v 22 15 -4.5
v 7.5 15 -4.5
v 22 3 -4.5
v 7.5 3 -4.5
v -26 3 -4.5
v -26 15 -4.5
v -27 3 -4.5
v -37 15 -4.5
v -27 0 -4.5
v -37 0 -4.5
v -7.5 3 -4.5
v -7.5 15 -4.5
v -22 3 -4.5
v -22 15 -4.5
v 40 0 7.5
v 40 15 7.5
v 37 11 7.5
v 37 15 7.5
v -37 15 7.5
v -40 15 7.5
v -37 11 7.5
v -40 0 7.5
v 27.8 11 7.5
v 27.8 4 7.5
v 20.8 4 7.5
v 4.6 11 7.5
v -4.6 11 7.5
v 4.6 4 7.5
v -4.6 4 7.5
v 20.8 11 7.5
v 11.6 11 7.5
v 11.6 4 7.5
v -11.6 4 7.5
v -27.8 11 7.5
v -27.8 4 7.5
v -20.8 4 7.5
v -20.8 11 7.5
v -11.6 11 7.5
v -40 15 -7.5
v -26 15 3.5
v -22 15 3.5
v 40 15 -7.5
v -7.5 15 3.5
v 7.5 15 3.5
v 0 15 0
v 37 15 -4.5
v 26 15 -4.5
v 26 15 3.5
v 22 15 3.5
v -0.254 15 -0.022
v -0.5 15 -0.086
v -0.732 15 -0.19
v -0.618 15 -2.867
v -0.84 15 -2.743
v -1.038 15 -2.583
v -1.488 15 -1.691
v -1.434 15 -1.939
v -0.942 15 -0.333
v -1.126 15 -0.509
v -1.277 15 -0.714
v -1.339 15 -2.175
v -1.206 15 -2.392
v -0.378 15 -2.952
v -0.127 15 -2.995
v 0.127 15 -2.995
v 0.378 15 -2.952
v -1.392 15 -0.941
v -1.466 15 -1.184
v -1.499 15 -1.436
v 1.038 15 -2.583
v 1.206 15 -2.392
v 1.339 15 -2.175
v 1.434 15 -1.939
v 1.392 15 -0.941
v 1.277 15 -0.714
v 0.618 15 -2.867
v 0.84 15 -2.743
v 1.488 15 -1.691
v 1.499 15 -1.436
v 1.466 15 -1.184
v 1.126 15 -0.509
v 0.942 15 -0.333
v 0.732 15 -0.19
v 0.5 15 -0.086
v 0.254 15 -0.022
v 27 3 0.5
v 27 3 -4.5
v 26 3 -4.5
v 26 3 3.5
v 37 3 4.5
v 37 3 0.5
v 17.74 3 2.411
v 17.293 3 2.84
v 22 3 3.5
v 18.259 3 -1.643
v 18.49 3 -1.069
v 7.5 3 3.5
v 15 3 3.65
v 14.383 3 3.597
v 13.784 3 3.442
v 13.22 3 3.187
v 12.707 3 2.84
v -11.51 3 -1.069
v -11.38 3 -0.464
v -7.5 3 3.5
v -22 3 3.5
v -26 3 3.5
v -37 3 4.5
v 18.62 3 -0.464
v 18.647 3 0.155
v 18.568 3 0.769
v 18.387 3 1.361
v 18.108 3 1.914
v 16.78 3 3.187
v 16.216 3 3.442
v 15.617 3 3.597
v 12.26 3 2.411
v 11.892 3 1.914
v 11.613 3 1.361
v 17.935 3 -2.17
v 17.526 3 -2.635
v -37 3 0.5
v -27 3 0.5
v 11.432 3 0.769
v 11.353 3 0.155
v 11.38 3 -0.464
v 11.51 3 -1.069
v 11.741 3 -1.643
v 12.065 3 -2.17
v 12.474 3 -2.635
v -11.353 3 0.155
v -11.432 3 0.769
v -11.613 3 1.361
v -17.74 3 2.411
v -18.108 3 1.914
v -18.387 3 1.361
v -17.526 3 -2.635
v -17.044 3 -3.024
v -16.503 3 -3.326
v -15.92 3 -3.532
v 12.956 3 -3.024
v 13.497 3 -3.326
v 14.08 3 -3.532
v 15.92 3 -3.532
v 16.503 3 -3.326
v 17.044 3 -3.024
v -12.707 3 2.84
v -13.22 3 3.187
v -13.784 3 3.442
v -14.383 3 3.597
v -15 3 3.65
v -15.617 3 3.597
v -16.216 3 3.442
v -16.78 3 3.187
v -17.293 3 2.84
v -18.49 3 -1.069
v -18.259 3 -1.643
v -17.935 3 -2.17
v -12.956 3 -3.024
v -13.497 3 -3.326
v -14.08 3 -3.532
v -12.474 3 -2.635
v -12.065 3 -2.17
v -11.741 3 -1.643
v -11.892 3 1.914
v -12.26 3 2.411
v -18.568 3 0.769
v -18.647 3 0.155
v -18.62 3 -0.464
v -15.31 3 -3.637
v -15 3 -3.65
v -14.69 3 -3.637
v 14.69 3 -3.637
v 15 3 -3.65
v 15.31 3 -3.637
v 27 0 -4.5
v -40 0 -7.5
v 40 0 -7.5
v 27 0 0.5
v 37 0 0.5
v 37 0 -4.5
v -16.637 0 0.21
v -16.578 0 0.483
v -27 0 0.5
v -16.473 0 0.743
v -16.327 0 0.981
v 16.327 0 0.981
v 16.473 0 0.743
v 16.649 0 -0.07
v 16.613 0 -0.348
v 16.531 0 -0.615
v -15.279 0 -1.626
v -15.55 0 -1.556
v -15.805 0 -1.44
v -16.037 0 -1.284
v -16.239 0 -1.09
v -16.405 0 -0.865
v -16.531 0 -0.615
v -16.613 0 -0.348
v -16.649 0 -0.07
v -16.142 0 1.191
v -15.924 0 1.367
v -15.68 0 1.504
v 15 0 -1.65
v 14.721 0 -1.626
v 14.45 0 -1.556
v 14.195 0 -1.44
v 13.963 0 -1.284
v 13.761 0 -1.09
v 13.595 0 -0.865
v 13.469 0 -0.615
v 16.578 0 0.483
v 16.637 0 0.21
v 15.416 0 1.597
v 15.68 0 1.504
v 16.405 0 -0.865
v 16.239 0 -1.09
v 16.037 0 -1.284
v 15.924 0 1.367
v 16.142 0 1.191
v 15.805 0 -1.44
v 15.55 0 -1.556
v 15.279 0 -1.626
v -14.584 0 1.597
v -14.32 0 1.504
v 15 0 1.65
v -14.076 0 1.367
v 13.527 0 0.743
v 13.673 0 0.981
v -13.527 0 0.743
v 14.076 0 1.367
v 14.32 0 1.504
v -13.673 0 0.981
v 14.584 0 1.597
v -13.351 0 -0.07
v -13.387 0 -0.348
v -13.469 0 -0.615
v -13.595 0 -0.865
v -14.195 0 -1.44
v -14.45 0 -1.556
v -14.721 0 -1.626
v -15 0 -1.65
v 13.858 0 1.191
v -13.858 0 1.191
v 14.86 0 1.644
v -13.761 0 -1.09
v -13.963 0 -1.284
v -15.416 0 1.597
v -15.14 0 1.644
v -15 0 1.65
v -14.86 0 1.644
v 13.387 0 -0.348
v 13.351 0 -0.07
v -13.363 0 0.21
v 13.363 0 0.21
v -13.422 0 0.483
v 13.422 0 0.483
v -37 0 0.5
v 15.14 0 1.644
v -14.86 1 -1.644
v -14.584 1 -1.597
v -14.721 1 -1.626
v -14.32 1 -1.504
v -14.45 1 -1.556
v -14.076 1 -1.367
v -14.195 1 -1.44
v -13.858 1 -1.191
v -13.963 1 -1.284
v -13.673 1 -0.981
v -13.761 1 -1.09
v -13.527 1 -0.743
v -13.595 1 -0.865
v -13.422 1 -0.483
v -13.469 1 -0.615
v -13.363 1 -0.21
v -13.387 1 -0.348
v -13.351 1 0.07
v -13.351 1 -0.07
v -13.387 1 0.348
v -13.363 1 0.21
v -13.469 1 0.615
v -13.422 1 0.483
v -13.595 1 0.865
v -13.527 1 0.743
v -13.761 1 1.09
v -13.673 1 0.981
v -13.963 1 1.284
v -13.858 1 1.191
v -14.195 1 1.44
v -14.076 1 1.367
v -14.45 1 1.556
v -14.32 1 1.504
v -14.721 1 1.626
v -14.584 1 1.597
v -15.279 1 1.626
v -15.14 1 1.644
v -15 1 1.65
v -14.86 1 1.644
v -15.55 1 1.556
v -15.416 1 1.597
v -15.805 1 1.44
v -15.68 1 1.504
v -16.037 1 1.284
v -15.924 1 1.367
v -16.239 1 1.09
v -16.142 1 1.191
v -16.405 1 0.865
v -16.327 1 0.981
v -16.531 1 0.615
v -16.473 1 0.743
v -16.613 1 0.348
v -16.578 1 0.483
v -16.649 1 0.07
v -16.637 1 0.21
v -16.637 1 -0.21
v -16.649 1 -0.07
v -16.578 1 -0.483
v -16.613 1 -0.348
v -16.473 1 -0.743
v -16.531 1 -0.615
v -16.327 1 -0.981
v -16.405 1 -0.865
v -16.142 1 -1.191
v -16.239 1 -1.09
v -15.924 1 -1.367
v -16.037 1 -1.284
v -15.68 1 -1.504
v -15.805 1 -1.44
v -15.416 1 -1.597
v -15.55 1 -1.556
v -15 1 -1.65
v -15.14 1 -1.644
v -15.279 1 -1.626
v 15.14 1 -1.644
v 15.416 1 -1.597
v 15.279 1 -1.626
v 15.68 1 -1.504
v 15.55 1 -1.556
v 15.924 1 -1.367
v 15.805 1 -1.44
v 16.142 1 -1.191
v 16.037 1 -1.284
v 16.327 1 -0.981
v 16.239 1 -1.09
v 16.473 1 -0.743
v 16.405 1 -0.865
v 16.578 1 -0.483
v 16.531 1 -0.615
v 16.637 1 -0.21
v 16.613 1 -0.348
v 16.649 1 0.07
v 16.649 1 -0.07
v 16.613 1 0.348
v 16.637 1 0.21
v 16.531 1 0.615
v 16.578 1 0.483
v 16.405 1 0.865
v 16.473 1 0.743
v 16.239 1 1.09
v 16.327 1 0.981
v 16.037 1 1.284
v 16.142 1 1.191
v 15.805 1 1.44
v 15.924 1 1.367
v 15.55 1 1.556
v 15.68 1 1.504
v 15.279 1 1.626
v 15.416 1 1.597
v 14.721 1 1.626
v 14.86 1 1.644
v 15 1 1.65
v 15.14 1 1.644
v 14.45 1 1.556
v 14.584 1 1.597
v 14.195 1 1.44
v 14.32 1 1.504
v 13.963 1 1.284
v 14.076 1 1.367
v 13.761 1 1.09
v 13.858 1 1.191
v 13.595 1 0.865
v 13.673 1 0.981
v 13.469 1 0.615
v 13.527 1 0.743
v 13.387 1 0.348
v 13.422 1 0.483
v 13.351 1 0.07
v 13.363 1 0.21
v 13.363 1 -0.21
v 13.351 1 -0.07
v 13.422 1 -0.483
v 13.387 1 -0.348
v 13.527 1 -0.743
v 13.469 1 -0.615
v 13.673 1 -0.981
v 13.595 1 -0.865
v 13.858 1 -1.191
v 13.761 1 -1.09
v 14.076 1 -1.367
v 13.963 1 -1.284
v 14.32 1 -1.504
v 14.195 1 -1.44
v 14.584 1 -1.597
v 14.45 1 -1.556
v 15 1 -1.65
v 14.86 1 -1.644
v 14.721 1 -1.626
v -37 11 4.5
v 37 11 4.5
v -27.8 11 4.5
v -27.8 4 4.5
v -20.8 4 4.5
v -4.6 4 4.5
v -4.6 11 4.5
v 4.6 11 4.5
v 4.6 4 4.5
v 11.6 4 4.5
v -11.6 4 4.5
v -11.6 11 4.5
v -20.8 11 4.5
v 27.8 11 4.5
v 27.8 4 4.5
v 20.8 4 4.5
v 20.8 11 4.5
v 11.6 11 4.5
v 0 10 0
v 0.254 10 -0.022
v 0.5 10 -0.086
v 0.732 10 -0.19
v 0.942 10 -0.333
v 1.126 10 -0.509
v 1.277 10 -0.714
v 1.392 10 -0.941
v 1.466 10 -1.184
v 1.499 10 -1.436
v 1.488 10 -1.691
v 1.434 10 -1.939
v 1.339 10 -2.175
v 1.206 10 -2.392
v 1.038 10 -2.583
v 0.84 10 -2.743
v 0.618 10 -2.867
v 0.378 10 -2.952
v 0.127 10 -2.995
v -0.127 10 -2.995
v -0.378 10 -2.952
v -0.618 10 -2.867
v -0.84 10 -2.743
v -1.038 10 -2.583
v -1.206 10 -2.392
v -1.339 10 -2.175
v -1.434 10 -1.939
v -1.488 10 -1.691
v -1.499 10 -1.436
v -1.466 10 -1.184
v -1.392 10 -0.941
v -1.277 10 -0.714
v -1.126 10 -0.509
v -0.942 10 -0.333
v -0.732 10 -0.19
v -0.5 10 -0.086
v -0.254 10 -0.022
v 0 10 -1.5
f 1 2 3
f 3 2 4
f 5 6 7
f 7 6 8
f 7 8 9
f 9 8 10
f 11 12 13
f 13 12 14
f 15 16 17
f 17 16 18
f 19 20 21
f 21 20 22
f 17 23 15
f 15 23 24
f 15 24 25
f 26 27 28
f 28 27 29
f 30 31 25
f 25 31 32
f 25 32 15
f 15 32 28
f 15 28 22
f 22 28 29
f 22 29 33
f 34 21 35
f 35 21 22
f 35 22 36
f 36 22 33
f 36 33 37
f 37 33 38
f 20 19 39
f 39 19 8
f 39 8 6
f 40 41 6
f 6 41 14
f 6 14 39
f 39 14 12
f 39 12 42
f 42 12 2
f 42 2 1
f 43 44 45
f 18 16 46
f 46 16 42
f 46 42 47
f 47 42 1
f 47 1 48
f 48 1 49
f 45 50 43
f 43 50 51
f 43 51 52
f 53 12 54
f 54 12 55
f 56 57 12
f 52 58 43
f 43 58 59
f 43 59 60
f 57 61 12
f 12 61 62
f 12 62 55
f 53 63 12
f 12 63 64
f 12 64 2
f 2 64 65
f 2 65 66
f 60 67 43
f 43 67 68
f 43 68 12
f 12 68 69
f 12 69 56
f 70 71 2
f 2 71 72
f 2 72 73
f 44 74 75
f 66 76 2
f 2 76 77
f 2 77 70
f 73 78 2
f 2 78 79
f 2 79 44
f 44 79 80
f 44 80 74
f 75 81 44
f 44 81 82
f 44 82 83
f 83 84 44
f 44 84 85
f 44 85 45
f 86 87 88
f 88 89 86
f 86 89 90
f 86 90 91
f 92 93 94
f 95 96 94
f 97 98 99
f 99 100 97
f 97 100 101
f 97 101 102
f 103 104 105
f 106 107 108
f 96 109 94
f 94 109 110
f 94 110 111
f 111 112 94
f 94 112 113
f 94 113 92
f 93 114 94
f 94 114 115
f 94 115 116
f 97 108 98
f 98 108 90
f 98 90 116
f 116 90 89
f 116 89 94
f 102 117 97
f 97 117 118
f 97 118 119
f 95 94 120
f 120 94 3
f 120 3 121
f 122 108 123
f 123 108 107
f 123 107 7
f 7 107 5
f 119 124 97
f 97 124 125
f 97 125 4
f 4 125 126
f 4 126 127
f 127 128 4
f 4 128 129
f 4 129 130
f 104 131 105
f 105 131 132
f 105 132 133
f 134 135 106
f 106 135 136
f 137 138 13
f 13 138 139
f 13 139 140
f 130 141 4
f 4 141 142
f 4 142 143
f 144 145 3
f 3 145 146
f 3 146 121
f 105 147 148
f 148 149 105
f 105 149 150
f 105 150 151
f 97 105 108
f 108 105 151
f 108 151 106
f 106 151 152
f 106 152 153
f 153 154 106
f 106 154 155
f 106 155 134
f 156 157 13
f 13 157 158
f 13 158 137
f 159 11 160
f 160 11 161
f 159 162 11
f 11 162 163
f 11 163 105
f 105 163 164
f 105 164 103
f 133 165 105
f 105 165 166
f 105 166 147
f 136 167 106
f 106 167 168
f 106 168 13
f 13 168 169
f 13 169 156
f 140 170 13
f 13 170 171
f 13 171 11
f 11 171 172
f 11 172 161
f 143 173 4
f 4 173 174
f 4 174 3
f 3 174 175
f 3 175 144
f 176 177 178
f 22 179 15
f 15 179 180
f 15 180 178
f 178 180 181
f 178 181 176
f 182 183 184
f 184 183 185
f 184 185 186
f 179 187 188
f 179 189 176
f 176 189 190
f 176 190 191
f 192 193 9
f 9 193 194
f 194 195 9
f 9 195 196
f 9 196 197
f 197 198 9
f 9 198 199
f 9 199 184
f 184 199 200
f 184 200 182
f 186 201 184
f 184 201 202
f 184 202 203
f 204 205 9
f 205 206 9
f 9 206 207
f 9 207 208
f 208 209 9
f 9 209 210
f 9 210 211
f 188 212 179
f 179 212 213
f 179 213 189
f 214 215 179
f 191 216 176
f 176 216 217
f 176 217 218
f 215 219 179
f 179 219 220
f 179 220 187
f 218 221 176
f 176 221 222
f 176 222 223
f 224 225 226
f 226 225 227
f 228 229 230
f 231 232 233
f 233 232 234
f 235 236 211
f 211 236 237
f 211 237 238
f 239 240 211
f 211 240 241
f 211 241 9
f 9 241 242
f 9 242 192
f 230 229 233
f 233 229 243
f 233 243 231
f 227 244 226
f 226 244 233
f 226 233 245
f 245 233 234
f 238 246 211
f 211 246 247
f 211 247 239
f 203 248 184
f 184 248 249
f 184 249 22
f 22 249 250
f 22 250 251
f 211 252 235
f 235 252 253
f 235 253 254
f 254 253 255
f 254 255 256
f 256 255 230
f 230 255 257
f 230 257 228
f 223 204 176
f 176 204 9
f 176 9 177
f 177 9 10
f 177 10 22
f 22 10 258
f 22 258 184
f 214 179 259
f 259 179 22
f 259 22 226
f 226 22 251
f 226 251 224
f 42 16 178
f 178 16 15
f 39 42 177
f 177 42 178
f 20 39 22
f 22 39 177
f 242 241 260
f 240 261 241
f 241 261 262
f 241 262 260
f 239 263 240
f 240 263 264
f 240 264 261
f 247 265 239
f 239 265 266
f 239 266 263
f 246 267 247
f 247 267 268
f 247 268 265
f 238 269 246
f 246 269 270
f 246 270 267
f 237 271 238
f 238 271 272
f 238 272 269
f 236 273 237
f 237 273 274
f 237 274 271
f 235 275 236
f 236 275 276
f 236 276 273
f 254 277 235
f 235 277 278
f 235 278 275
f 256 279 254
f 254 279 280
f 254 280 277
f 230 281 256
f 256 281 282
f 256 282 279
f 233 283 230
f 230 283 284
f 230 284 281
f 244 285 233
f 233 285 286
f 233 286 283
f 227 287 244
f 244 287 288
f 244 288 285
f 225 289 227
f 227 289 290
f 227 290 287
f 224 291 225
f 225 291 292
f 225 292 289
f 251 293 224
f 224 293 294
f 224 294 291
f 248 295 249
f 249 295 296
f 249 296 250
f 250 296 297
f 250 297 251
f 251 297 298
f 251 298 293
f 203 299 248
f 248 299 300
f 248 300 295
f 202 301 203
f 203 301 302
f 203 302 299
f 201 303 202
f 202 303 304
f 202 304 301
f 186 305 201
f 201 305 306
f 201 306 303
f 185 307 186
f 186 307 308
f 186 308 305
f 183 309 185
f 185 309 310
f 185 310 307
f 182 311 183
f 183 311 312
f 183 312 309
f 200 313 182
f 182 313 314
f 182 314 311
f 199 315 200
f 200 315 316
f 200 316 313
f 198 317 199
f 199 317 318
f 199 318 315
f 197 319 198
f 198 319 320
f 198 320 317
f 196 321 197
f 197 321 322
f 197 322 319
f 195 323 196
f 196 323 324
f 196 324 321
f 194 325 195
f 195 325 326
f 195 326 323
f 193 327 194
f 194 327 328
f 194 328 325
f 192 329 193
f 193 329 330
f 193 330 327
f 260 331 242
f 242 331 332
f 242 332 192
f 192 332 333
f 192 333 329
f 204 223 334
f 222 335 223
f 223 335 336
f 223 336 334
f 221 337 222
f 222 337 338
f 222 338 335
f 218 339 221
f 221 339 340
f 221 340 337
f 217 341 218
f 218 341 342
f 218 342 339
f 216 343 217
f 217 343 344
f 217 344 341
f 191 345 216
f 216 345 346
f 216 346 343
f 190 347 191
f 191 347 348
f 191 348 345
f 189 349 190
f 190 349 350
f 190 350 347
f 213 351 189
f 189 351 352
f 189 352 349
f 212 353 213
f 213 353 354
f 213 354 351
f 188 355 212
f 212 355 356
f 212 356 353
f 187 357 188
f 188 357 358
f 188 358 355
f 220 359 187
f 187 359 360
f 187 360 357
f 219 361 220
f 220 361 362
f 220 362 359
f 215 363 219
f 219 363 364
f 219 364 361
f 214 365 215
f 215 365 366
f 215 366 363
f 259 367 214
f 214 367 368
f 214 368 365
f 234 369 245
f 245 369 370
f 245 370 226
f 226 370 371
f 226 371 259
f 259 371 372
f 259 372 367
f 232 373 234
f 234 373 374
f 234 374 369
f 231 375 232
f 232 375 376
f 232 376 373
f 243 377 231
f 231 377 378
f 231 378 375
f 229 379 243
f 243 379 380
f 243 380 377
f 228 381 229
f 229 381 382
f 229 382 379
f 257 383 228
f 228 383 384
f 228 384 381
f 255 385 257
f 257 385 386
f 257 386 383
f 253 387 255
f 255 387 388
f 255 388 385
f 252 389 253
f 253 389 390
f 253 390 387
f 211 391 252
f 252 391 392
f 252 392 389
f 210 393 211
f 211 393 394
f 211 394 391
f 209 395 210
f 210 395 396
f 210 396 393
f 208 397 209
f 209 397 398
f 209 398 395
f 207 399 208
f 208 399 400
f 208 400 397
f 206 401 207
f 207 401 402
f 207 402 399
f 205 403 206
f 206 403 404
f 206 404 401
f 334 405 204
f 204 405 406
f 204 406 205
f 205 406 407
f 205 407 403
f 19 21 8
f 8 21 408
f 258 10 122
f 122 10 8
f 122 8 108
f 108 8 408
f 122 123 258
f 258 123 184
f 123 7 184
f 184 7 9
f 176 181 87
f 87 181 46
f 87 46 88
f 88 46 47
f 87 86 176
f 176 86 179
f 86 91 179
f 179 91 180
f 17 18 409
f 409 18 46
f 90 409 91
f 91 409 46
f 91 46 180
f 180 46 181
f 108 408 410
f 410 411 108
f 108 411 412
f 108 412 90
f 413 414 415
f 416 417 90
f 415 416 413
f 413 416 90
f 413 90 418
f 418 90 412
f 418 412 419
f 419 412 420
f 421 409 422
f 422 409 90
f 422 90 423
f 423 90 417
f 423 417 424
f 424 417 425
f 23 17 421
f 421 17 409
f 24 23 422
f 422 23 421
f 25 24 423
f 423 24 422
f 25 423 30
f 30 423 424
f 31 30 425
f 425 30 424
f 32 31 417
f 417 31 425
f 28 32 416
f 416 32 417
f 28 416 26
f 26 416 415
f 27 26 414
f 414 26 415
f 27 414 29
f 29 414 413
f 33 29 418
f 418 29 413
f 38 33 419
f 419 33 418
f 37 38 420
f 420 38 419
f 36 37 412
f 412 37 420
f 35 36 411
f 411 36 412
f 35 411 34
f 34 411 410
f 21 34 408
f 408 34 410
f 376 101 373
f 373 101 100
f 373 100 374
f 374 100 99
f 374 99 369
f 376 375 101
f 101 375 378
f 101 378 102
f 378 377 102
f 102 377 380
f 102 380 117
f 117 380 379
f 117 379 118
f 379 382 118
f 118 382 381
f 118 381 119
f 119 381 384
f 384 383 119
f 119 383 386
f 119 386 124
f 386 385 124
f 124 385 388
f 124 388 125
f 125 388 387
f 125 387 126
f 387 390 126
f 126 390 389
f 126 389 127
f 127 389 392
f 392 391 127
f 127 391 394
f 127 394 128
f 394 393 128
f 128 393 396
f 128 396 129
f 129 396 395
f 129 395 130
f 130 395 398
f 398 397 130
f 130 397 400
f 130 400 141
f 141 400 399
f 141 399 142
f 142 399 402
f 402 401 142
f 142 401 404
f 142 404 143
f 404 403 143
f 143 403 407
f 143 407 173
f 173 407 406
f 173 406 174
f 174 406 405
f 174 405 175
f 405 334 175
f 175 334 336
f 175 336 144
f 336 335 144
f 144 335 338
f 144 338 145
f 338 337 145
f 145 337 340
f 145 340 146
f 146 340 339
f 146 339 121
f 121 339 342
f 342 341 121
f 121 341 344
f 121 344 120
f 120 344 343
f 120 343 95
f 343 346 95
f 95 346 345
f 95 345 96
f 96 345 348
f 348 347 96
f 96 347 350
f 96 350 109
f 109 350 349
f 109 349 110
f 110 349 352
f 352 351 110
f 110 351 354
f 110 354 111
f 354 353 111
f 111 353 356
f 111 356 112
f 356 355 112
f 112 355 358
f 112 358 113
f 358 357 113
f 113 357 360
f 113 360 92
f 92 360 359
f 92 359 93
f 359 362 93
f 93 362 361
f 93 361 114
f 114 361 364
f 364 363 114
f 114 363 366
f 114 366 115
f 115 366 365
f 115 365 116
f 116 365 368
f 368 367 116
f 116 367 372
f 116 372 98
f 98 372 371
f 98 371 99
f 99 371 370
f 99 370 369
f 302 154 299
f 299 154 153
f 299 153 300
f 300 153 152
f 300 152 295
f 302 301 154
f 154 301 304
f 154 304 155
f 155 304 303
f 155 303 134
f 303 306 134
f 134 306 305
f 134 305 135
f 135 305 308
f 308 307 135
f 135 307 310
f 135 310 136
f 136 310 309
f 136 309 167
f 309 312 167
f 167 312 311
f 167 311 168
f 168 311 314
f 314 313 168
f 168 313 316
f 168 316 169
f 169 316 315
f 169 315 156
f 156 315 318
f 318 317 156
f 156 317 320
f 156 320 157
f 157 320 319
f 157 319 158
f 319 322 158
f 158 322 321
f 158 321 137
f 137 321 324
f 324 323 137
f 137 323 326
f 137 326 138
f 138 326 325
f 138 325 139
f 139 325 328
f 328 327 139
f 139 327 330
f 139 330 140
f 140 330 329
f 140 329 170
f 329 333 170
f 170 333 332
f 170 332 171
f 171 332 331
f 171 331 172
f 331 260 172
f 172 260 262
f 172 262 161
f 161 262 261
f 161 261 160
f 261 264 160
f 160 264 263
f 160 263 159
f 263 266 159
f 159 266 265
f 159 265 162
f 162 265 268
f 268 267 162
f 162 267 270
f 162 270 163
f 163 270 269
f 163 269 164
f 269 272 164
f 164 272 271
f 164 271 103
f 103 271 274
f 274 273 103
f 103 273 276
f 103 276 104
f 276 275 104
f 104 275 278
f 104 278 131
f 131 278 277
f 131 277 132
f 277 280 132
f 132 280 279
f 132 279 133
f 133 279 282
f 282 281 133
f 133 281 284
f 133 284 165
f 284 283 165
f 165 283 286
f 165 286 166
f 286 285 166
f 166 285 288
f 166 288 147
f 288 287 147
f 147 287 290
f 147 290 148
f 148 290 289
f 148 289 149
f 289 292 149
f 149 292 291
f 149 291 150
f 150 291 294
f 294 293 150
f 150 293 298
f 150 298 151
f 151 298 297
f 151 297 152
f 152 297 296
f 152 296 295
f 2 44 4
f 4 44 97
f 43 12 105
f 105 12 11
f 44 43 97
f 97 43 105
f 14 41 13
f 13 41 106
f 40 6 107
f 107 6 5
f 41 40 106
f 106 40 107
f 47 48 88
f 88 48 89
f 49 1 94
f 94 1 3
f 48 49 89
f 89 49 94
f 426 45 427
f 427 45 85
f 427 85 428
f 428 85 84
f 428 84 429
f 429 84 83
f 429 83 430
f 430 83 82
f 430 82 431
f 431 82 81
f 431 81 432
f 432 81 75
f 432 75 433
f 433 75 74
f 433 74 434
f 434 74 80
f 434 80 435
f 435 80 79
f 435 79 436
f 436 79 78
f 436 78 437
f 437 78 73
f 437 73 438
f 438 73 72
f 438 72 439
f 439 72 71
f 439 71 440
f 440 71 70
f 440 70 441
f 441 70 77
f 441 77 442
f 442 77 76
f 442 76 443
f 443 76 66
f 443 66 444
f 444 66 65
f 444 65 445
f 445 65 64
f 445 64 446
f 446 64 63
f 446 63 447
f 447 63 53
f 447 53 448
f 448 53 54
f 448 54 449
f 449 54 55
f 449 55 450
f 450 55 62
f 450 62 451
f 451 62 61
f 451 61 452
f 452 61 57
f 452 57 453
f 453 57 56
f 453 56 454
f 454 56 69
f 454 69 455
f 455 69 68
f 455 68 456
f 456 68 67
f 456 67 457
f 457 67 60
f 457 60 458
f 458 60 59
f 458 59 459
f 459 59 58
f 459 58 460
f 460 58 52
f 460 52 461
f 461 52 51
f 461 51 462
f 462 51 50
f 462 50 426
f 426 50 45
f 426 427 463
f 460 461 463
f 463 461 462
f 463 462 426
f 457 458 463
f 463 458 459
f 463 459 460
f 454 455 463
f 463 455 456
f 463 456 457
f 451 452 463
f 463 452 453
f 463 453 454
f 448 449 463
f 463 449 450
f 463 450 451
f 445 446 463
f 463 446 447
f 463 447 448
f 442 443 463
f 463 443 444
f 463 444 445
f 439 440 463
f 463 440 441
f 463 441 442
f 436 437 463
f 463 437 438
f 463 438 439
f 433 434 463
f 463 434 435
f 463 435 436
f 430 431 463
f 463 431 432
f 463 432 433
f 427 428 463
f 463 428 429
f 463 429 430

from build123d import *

# Parameters (mm, degrees)
SKETCH1_W      = 80
SKETCH1_H      = 15
SKETCH1_R      = 1.65
SKETCH1_W_2    = 10
SKETCH1_H_2    = 5
EXTRUDE1_DEPTH = 3
SKETCH2_W      = 3
SKETCH2_H      = 3
SKETCH2_H_2    = 9
SKETCH2_W_2    = 74
EXTRUDE2_DEPTH = 12
SKETCH3_W      = 7
SKETCH3_H      = 7
EXTRUDE3_DEPTH = 5
CHAMFER2_SIZE  = 2
CHAMFER3_SIZE  = 2
SKETCH4_W      = 15
SKETCH4_H      = 8
SKETCH4_W_2    = 4
EXTRUDE4_DEPTH = 12
SKETCH5_R      = 1.5
EXTRUDE5_DEPTH = 5


with BuildPart() as part:
    # Sketch1 → Extrude1 (new body)
    with BuildSketch(Plane(origin=(0, 0, 0), x_dir=(1, 0, 0), z_dir=(0, 1, 0))):
        Rectangle(SKETCH1_W, SKETCH1_H)
        with Locations((-15, 0)):
            Circle(SKETCH1_R, mode=Mode.SUBTRACT)
        with Locations((15, 0)):
            Circle(SKETCH1_R, mode=Mode.SUBTRACT)
        with Locations((-32, 2)):
            Rectangle(SKETCH1_W_2, SKETCH1_H_2, mode=Mode.SUBTRACT)
        with Locations((32, 2)):
            Rectangle(SKETCH1_W_2, SKETCH1_H_2, mode=Mode.SUBTRACT)
    extrude(amount=EXTRUDE1_DEPTH)

    # Sketch2 → Extrude2 (add)
    with BuildSketch(Plane(origin=(0, 3, 0), x_dir=(1, 0, 0), z_dir=(0, 1, 0))):
        with Locations((-38.5, 6)):
            Rectangle(SKETCH2_W, SKETCH2_H)
        with Locations((-38.5, 0)):
            Rectangle(SKETCH2_W, SKETCH2_H_2)
        with Locations((0, 6)):
            Rectangle(SKETCH2_W_2, SKETCH2_H)
        with Locations((-38.5, -6)):
            Rectangle(SKETCH2_W, SKETCH2_H)
        with Locations((0, -6)):
            Rectangle(SKETCH2_W_2, SKETCH2_H)
        with Locations((38.5, 6)):
            Rectangle(SKETCH2_W, SKETCH2_H)
        with Locations((38.5, 0)):
            Rectangle(SKETCH2_W, SKETCH2_H_2)
        with Locations((38.5, -6)):
            Rectangle(SKETCH2_W, SKETCH2_H)
    extrude(amount=EXTRUDE2_DEPTH)

    # Sketch3 → Extrude3 (cut)
    with BuildSketch(Plane.XY.offset(7.5)):
        Polygon((-20.8, 11), (-11.6, 11), (-4.6, 11), (4.6, 11), (11.6, 11), (20.8, 11), (27.8, 11), (37, 11), (37, 15), (-37, 15), (-37, 11), (-27.8, 11), align=None)
        with Locations((-24.3, 7.5)):
            Rectangle(SKETCH3_W, SKETCH3_H)
        with Locations((-8.1, 7.5)):
            Rectangle(SKETCH3_W, SKETCH3_H)
        with Locations((8.1, 7.5)):
            Rectangle(SKETCH3_W, SKETCH3_H)
        with Locations((24.3, 7.5)):
            Rectangle(SKETCH3_W, SKETCH3_H)
    extrude(amount=-EXTRUDE3_DEPTH, mode=Mode.SUBTRACT)

    # Chamfer2
    chamfer2_edges = [part.edges().sort_by_distance(p)[0] for p in [
        (13.35, 3, 0),
    ]]
    chamfer(chamfer2_edges, length=CHAMFER2_SIZE)

    # Chamfer3
    chamfer3_edges = [part.edges().sort_by_distance(p)[0] for p in [
        (-16.65, 3, 0),
    ]]
    chamfer(chamfer3_edges, length=CHAMFER3_SIZE)

    # Sketch4 → Extrude4 (add)
    with BuildSketch(Plane(origin=(0, 3, 0), x_dir=(1, 0, 0), z_dir=(0, 1, 0))):
        with Locations((0, 0.5)):
            Rectangle(SKETCH4_W, SKETCH4_H)
        with Locations((-24, 0.5)):
            Rectangle(SKETCH4_W_2, SKETCH4_H)
        with Locations((24, 0.5)):
            Rectangle(SKETCH4_W_2, SKETCH4_H)
    extrude(amount=EXTRUDE4_DEPTH)

    # Sketch5 → Extrude5 (cut)
    with BuildSketch(Plane(origin=(0, 15, 0), x_dir=(1, 0, 0), z_dir=(0, 1, 0))):
        with Locations((0, 1.5)):
            Circle(SKETCH5_R)
    extrude(amount=-EXTRUDE5_DEPTH, mode=Mode.SUBTRACT)


solid = part.part
